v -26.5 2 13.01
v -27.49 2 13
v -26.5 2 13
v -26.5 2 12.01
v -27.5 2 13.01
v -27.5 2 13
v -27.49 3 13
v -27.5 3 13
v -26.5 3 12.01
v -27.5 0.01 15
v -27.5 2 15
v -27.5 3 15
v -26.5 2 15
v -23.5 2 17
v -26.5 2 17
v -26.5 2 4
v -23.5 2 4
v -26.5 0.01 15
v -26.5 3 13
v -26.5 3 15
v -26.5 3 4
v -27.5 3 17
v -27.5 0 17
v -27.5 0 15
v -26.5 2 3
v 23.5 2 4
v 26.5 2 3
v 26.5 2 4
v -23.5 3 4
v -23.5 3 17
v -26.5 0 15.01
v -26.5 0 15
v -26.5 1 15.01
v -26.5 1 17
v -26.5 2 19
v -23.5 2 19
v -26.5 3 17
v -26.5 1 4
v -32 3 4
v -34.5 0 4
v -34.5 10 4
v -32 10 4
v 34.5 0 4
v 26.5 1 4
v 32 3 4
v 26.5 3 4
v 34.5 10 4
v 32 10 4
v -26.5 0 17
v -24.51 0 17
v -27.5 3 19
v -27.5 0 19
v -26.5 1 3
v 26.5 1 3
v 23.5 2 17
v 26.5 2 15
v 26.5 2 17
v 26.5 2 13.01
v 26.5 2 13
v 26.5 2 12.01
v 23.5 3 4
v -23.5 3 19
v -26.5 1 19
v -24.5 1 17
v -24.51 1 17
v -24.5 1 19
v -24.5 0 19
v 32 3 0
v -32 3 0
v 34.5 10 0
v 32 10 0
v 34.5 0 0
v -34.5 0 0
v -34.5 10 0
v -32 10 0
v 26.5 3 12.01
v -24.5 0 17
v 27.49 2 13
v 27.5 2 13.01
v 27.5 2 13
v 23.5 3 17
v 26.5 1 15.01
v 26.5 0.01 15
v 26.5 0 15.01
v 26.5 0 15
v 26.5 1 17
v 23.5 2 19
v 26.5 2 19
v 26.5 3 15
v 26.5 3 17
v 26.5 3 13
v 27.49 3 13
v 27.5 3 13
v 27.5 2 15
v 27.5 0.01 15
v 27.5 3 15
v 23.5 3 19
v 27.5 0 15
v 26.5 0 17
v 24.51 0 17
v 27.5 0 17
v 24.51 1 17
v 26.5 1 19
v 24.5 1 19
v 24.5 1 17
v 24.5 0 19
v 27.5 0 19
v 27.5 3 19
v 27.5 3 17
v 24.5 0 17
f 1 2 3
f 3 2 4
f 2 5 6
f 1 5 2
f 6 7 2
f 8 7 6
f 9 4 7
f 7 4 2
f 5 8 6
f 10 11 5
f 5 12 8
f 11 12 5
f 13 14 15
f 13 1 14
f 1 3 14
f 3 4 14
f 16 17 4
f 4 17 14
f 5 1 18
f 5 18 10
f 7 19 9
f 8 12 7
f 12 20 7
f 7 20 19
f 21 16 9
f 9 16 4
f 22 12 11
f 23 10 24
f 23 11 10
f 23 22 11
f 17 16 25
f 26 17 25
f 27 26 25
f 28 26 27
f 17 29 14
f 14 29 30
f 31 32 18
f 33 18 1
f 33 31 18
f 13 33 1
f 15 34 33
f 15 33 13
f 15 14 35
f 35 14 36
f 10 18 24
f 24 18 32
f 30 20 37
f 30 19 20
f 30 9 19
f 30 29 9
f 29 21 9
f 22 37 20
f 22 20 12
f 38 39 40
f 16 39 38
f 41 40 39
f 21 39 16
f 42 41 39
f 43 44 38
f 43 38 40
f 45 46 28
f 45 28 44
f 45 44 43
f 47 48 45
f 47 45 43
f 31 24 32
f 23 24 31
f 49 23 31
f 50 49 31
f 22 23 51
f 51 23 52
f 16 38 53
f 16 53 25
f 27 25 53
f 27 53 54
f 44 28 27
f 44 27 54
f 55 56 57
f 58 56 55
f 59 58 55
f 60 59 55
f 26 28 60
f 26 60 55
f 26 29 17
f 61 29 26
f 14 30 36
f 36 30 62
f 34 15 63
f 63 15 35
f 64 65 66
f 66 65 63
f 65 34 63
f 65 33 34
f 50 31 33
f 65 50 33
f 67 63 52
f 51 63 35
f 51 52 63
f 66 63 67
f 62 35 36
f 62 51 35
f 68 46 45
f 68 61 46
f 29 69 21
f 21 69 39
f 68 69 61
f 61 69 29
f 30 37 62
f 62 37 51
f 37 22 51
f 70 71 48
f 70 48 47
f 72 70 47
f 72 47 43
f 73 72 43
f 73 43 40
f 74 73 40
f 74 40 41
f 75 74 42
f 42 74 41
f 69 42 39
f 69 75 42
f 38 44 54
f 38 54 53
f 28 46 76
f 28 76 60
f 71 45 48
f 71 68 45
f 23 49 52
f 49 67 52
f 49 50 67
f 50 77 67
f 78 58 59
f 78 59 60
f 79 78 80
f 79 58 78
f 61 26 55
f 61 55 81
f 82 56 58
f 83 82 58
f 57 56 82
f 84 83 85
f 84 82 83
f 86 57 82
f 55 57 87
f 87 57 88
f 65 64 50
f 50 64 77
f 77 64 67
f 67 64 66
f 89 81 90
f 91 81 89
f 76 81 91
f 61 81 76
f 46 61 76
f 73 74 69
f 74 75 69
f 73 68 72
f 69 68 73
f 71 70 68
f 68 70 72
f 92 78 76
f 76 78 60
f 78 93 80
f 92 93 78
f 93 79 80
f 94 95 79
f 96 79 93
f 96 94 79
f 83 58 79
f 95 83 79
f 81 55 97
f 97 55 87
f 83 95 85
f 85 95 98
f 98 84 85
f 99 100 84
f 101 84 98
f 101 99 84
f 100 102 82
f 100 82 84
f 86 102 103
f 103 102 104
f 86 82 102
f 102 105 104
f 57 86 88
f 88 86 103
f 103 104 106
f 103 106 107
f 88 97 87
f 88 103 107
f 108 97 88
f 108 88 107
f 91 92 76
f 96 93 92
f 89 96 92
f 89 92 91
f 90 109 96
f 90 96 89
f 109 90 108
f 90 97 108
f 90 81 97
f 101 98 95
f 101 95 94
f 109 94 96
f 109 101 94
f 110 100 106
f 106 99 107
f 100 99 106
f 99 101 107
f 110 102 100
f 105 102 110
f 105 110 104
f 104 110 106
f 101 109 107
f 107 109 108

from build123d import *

# Parameters (mm, degrees)
PAD_DEPTH       = 4
SKETCH001_W     = 53
SKETCH001_H     = 1
POCKET_DEPTH    = 1
SKETCH002_W     = 3
SKETCH002_H     = 1
PAD001_DEPTH    = 13
PAD002_DEPTH    = 2
SKETCH004_W     = 1
SKETCH004_H     = 3
PAD003_DEPTH    = 2
CHAMFER_SIZE    = 1.99
SKETCH005_W     = 1
SKETCH005_H     = 1
PAD004_DEPTH    = 2
CHAMFER001_SIZE = 1.99
CHAMFER002_SIZE = 0.99


with BuildPart() as part:
    # Sketch → Pad (new body)
    with BuildSketch(Plane.XY):
        Polygon((34.5, 10), (34.5, 0), (-34.5, 0), (-34.5, 10), (-32, 10), (-32, 3), (32, 3), (32, 10), align=None)
    extrude(amount=PAD_DEPTH)

    # Sketch001 (on Face10 of Pad) → Pocket (cut)
    with BuildSketch(Plane.XY.offset(4)):
        with Locations((0, 1.5)):
            Rectangle(SKETCH001_W, SKETCH001_H)
    extrude(amount=-POCKET_DEPTH, mode=Mode.SUBTRACT)

    # Sketch002 (on Face5 of Pocket) → Pad001 (join)
    with BuildSketch(Plane.XY.offset(4)):
        with Locations((-25, 2.5)):
            Rectangle(SKETCH002_W, SKETCH002_H)
        with Locations((25, 2.5)):
            Rectangle(SKETCH002_W, SKETCH002_H)
    extrude(amount=PAD001_DEPTH)

    # Sketch003 (on Face20 of Pad001) → Pad002 (join)
    with BuildSketch(Plane.XY.offset(17)):
        Polygon((-23.5, 3), (-27.5, 3), (-27.5, 0), (-24.5, 0), (-24.5, 1), (-26.5, 1), (-26.5, 2), (-23.5, 2), align=None)
        Polygon((27.5, 3), (23.5, 3), (23.5, 2), (26.5, 2), (26.5, 1), (24.5, 1), (24.5, 0), (27.5, 0), align=None)
    extrude(amount=PAD002_DEPTH)

    # Sketch004 (on Face20 of Pad002) → Pad003 (join)
    with BuildSketch(Plane(origin=(0, 0, 17), x_dir=(1, 0, 0), z_dir=(0, 0, -1))):
        with Locations((-27, -1.5)):
            Rectangle(SKETCH004_W, SKETCH004_H)
        with Locations((27, -1.5)):
            Rectangle(SKETCH004_W, SKETCH004_H)
    extrude(amount=PAD003_DEPTH)

    # Chamfer
    chamfer_edges = [part.edges().sort_by_distance(p)[0] for p in [
        (-26.5, 0.5, 17),
        (26.5, 0.5, 17),
    ]]
    chamfer(chamfer_edges, length=CHAMFER_SIZE)

    # Sketch005 (on Face4 of Chamfer) → Pad004 (join)
    with BuildSketch(Plane(origin=(0, 0, 15), x_dir=(1, 0, 0), z_dir=(0, 0, -1))):
        with Locations((-27, -2.5)):
            Rectangle(SKETCH005_W, SKETCH005_H)
        with Locations((27, -2.5)):
            Rectangle(SKETCH005_W, SKETCH005_H)
    extrude(amount=PAD004_DEPTH)

    # Chamfer001
    chamfer001_edges = [part.edges().sort_by_distance(p)[0] for p in [
        (27, 2, 15),
        (-27, 2, 15),
    ]]
    chamfer(chamfer001_edges, length=CHAMFER001_SIZE)

    # Chamfer002
    chamfer002_edges = [part.edges().sort_by_distance(p)[0] for p in [
        (-26.5, 2.5, 13),
        (26.5, 2.5, 13),
    ]]
    chamfer(chamfer002_edges, length=CHAMFER002_SIZE)


solid = part.part
